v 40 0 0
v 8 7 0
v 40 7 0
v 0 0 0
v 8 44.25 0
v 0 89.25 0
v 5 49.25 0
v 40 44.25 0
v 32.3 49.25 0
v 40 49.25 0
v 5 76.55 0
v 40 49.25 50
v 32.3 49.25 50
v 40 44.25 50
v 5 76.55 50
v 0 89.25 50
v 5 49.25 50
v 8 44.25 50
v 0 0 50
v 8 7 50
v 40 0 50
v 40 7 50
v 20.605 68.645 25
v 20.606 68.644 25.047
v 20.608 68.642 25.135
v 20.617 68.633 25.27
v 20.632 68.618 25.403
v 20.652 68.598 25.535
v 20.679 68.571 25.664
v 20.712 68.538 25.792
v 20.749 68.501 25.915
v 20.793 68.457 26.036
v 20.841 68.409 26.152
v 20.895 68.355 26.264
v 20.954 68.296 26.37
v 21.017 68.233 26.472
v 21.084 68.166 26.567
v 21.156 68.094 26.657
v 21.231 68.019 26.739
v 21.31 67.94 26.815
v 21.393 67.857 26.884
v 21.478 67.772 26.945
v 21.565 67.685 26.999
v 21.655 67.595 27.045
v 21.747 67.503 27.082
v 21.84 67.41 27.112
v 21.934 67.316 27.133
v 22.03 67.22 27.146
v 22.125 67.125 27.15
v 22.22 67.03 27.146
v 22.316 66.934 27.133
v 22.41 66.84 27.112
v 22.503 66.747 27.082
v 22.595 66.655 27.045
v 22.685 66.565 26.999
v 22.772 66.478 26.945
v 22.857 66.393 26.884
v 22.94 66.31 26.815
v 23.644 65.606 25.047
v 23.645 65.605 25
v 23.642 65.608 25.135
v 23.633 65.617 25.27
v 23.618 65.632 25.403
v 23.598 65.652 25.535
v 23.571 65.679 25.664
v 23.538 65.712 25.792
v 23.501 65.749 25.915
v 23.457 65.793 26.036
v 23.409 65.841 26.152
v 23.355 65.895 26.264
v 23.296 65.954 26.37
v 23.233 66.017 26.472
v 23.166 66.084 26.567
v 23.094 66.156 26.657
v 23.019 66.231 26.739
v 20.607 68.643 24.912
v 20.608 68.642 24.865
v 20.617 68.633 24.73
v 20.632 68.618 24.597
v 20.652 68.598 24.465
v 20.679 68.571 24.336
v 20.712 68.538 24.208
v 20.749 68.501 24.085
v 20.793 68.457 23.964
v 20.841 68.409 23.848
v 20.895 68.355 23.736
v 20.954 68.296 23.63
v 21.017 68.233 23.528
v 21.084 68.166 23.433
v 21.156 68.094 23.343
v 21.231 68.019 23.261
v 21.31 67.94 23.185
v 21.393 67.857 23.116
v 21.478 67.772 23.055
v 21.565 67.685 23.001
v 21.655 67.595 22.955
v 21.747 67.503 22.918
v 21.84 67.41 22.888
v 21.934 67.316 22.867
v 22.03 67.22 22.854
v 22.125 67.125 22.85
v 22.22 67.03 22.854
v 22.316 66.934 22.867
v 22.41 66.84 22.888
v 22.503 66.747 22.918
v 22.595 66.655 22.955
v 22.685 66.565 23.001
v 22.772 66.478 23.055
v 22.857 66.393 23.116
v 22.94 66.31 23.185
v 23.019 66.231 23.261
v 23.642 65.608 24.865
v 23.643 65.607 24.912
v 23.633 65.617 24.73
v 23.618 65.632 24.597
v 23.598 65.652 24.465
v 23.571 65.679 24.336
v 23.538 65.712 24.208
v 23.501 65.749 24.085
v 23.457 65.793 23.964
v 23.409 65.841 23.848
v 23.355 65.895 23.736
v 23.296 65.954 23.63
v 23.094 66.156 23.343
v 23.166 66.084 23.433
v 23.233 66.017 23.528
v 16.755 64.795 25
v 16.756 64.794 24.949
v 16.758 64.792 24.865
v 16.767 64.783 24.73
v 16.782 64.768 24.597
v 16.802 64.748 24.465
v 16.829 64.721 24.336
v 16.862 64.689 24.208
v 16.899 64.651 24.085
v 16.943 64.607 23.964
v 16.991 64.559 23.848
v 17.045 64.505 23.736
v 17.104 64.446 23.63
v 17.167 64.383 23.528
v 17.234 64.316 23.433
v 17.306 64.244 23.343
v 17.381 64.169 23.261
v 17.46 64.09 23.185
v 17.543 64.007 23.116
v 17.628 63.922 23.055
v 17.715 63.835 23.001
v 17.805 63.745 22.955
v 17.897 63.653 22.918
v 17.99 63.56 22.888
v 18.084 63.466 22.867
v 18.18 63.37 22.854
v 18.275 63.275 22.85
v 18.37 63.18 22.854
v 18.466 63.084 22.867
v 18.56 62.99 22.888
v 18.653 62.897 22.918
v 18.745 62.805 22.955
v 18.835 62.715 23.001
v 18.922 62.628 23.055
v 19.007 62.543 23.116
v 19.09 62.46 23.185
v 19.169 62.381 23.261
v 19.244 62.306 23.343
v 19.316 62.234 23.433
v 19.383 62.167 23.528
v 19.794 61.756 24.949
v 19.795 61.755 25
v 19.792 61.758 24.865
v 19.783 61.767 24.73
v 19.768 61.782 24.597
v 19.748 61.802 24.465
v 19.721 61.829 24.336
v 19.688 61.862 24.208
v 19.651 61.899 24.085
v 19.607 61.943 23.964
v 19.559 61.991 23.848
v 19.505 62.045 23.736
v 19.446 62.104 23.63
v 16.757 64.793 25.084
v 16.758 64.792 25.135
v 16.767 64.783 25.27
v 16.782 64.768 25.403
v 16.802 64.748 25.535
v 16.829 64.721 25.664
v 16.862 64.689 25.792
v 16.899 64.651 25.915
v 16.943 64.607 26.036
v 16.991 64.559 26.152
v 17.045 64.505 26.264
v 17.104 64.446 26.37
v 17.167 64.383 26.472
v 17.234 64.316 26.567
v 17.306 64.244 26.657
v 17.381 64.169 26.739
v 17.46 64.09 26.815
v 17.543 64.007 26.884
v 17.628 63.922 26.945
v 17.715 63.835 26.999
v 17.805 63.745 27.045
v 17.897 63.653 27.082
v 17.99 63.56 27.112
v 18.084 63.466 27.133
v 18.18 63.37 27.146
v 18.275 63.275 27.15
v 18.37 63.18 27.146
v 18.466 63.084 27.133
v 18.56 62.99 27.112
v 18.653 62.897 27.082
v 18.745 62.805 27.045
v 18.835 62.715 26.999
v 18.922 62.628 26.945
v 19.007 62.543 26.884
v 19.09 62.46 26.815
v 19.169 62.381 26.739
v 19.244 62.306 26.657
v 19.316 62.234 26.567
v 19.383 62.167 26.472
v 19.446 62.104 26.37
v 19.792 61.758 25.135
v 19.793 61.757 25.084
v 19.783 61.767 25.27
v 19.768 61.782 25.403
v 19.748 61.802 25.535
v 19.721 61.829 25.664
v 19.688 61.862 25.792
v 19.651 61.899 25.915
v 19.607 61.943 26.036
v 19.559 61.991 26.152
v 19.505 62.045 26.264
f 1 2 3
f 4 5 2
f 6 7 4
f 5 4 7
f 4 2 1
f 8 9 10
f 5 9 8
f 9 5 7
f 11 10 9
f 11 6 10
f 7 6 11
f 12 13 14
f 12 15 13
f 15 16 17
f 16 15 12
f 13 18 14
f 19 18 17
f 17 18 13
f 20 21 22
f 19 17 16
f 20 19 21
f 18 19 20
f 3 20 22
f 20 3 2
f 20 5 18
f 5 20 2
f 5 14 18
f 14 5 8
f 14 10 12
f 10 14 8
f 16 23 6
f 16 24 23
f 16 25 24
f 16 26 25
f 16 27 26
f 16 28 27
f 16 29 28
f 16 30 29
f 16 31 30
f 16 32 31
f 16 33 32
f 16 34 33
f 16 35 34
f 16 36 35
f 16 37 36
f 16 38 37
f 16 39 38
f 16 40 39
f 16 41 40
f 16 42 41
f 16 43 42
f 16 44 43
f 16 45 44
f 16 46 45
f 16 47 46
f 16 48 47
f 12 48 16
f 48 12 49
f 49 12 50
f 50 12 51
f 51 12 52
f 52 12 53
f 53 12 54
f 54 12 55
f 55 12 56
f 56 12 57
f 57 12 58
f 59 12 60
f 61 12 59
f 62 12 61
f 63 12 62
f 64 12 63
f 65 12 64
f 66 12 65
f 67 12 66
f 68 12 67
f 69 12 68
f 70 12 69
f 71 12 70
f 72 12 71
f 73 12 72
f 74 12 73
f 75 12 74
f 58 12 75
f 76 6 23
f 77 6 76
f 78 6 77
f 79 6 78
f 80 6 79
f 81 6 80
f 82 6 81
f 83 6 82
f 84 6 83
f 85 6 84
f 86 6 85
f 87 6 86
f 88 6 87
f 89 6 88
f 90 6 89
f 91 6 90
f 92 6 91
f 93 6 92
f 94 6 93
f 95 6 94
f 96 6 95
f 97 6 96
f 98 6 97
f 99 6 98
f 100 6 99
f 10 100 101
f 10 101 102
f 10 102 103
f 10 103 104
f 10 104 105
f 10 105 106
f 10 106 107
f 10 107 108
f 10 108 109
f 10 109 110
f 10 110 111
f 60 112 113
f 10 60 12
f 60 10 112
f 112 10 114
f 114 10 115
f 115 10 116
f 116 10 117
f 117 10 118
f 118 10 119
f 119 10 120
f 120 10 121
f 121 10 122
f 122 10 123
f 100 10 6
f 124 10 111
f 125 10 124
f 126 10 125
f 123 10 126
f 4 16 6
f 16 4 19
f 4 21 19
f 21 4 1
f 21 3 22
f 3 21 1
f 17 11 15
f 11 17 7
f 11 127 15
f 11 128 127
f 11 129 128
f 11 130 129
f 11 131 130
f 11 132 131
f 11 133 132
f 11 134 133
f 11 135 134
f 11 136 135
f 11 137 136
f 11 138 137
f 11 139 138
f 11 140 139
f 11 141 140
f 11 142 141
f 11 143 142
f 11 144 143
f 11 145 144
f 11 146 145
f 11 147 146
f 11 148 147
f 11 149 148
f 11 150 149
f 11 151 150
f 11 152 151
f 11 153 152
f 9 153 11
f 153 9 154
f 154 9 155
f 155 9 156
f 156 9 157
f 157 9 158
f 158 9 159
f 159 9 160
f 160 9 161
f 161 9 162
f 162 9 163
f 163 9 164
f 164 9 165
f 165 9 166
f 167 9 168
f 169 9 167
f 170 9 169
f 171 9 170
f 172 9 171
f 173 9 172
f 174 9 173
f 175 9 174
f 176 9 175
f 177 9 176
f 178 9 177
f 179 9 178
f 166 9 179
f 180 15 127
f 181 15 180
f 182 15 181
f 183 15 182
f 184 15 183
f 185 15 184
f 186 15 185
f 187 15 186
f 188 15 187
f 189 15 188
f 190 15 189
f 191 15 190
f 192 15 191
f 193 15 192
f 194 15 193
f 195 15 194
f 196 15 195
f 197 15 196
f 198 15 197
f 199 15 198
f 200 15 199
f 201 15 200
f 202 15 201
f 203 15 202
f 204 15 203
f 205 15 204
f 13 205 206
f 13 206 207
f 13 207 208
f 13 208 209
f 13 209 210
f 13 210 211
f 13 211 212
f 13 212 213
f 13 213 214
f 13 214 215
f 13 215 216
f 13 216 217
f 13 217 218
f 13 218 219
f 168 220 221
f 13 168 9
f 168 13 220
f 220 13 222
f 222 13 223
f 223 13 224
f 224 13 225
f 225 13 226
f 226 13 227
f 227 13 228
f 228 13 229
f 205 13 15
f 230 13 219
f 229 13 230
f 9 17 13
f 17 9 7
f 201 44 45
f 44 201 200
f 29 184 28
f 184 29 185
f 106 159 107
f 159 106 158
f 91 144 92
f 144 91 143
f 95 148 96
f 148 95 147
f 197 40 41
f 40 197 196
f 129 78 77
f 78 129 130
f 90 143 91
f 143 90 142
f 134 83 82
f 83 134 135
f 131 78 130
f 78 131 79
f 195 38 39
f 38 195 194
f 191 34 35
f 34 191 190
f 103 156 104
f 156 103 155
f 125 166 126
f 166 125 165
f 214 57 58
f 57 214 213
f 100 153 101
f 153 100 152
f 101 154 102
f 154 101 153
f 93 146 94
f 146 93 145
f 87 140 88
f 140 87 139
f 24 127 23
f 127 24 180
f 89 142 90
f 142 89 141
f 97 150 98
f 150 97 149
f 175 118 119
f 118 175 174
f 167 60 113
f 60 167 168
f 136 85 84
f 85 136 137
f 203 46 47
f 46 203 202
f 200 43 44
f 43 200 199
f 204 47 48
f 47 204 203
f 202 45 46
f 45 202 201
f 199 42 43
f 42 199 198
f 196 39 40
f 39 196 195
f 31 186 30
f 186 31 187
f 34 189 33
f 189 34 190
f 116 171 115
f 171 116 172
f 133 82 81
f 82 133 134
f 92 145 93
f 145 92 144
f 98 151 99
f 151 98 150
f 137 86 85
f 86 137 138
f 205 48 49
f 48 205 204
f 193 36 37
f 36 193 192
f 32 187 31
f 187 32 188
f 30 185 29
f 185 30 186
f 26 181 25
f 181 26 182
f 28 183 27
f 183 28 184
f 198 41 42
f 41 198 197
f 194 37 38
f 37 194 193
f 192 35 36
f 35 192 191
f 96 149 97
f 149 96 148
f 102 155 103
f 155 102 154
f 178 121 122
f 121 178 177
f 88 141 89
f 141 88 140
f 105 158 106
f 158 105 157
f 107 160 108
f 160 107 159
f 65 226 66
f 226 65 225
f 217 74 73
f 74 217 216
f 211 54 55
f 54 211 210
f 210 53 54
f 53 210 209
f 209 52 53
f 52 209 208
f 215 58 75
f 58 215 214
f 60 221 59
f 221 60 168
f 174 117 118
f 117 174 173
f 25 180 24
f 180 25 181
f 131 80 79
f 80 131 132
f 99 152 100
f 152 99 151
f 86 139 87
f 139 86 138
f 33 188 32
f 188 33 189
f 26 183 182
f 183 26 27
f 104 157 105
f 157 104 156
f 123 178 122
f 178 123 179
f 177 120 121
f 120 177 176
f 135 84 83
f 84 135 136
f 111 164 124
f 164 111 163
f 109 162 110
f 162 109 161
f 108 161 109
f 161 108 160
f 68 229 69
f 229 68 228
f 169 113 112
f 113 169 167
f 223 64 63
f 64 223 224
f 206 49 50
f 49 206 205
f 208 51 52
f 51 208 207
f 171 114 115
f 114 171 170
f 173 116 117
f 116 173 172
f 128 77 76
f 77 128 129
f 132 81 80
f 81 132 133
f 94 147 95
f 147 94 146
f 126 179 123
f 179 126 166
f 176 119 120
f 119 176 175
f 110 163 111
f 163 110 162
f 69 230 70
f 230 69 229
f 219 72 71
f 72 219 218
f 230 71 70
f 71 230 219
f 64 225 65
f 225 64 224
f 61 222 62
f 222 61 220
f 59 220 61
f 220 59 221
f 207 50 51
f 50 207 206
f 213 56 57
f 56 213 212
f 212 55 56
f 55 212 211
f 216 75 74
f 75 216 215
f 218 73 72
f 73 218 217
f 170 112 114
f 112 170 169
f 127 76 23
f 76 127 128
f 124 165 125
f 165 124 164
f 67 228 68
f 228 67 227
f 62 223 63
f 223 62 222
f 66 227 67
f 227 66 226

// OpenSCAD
$fn = 100;

module Body(){
    linear_extrude(50){
        difference(){
            polygon(
                [[0, 0], [40,0], [40,7], [8, 7], [8, 44.25], [40, 44.25], [40, 49.25], [0, 89.25]]
            );
            
            polygon(
                [[5, 49.25], [32.3, 49.25], [5, 76.55]]
            );
        }
    }
}

module PowerStripDeskMount() {
    difference(){
        Body();
        
        translate([20, 65, 25]){rotate([0, 90, 45]){
            cylinder(h = 20, d = 4.3, center = true);
        }}
    }
}

PowerStripDeskMount();
